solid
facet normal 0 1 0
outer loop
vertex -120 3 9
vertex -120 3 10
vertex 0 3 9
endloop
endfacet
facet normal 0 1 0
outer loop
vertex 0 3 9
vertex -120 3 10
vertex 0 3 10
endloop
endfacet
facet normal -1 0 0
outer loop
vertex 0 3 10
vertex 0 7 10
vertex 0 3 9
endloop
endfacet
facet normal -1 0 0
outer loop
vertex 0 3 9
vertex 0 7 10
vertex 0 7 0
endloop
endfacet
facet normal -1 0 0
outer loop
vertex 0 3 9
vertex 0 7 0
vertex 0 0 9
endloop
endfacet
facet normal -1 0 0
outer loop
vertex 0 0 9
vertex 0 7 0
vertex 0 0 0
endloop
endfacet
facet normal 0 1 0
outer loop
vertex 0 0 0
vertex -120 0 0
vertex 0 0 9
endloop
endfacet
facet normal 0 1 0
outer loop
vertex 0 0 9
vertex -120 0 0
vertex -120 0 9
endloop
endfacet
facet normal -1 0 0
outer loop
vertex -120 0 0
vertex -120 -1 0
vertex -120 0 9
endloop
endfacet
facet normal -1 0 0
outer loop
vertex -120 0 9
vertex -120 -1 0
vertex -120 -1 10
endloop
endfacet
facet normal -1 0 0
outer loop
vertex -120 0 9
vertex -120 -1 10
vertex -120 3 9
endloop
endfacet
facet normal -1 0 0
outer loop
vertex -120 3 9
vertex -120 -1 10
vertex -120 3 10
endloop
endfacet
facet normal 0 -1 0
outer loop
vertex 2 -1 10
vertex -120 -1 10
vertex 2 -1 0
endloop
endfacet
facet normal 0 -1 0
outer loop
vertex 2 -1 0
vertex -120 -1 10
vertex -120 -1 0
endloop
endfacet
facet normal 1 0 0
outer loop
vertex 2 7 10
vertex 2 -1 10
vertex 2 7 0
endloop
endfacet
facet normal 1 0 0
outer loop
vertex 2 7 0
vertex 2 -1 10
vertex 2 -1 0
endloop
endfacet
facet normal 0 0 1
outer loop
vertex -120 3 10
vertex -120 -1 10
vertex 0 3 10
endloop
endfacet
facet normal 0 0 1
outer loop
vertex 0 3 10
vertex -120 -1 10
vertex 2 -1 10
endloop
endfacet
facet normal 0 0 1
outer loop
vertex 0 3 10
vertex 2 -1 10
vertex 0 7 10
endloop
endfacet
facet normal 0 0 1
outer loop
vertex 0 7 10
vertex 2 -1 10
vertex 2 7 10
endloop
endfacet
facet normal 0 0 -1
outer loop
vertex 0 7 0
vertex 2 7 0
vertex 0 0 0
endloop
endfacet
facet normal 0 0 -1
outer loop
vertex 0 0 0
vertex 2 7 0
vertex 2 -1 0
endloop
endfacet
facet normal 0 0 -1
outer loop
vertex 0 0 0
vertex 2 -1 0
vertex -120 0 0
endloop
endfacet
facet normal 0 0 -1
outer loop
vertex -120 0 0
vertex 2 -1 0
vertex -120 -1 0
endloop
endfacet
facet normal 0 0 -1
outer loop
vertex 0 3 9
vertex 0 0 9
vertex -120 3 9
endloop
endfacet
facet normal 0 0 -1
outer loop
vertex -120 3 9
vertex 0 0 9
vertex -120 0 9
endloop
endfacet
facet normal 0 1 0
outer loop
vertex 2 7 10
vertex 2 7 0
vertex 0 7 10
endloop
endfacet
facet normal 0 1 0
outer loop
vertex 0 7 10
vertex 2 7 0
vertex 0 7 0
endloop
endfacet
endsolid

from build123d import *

# Parameters (mm, degrees)
Y_KSEKLIK_EKSTR_ZYON1_DEPTH = 10
IZIM2_W                     = 120
IZIM2_H                     = 1
Y_KSEKLIK_EKSTR_ZYON2_DEPTH = 3
IZIM4_W                     = 2
IZIM4_H                     = 10
Y_KSEKLIK_EKSTR_ZYON3_DEPTH = 4


with BuildPart() as part:
    # Çizim1 → Yükseklik-Ekstrüzyon1 (new body)
    with BuildSketch(Plane.XY):
        Polygon((0, 0), (-120, 0), (-120, -1), (2, -1), (2, 3), (0, 3), align=None)
    extrude(amount=Y_KSEKLIK_EKSTR_ZYON1_DEPTH)

    # Çizim2 → Yükseklik-Ekstrüzyon2 (add)
    with BuildSketch(Plane(origin=(0, 0, 0), x_dir=(1, 0, 0), z_dir=(0, 1, 0))):
        with Locations((-60, -9.5)):
            Rectangle(IZIM2_W, IZIM2_H)
    extrude(amount=Y_KSEKLIK_EKSTR_ZYON2_DEPTH)

    # Çizim4 → Yükseklik-Ekstrüzyon3 (add)
    with BuildSketch(Plane(origin=(0, 3, 0), x_dir=(1, 0, 0), z_dir=(0, 1, 0))):
        with Locations((1, -5)):
            Rectangle(IZIM4_W, IZIM4_H)
    extrude(amount=Y_KSEKLIK_EKSTR_ZYON3_DEPTH)


solid = part.part
